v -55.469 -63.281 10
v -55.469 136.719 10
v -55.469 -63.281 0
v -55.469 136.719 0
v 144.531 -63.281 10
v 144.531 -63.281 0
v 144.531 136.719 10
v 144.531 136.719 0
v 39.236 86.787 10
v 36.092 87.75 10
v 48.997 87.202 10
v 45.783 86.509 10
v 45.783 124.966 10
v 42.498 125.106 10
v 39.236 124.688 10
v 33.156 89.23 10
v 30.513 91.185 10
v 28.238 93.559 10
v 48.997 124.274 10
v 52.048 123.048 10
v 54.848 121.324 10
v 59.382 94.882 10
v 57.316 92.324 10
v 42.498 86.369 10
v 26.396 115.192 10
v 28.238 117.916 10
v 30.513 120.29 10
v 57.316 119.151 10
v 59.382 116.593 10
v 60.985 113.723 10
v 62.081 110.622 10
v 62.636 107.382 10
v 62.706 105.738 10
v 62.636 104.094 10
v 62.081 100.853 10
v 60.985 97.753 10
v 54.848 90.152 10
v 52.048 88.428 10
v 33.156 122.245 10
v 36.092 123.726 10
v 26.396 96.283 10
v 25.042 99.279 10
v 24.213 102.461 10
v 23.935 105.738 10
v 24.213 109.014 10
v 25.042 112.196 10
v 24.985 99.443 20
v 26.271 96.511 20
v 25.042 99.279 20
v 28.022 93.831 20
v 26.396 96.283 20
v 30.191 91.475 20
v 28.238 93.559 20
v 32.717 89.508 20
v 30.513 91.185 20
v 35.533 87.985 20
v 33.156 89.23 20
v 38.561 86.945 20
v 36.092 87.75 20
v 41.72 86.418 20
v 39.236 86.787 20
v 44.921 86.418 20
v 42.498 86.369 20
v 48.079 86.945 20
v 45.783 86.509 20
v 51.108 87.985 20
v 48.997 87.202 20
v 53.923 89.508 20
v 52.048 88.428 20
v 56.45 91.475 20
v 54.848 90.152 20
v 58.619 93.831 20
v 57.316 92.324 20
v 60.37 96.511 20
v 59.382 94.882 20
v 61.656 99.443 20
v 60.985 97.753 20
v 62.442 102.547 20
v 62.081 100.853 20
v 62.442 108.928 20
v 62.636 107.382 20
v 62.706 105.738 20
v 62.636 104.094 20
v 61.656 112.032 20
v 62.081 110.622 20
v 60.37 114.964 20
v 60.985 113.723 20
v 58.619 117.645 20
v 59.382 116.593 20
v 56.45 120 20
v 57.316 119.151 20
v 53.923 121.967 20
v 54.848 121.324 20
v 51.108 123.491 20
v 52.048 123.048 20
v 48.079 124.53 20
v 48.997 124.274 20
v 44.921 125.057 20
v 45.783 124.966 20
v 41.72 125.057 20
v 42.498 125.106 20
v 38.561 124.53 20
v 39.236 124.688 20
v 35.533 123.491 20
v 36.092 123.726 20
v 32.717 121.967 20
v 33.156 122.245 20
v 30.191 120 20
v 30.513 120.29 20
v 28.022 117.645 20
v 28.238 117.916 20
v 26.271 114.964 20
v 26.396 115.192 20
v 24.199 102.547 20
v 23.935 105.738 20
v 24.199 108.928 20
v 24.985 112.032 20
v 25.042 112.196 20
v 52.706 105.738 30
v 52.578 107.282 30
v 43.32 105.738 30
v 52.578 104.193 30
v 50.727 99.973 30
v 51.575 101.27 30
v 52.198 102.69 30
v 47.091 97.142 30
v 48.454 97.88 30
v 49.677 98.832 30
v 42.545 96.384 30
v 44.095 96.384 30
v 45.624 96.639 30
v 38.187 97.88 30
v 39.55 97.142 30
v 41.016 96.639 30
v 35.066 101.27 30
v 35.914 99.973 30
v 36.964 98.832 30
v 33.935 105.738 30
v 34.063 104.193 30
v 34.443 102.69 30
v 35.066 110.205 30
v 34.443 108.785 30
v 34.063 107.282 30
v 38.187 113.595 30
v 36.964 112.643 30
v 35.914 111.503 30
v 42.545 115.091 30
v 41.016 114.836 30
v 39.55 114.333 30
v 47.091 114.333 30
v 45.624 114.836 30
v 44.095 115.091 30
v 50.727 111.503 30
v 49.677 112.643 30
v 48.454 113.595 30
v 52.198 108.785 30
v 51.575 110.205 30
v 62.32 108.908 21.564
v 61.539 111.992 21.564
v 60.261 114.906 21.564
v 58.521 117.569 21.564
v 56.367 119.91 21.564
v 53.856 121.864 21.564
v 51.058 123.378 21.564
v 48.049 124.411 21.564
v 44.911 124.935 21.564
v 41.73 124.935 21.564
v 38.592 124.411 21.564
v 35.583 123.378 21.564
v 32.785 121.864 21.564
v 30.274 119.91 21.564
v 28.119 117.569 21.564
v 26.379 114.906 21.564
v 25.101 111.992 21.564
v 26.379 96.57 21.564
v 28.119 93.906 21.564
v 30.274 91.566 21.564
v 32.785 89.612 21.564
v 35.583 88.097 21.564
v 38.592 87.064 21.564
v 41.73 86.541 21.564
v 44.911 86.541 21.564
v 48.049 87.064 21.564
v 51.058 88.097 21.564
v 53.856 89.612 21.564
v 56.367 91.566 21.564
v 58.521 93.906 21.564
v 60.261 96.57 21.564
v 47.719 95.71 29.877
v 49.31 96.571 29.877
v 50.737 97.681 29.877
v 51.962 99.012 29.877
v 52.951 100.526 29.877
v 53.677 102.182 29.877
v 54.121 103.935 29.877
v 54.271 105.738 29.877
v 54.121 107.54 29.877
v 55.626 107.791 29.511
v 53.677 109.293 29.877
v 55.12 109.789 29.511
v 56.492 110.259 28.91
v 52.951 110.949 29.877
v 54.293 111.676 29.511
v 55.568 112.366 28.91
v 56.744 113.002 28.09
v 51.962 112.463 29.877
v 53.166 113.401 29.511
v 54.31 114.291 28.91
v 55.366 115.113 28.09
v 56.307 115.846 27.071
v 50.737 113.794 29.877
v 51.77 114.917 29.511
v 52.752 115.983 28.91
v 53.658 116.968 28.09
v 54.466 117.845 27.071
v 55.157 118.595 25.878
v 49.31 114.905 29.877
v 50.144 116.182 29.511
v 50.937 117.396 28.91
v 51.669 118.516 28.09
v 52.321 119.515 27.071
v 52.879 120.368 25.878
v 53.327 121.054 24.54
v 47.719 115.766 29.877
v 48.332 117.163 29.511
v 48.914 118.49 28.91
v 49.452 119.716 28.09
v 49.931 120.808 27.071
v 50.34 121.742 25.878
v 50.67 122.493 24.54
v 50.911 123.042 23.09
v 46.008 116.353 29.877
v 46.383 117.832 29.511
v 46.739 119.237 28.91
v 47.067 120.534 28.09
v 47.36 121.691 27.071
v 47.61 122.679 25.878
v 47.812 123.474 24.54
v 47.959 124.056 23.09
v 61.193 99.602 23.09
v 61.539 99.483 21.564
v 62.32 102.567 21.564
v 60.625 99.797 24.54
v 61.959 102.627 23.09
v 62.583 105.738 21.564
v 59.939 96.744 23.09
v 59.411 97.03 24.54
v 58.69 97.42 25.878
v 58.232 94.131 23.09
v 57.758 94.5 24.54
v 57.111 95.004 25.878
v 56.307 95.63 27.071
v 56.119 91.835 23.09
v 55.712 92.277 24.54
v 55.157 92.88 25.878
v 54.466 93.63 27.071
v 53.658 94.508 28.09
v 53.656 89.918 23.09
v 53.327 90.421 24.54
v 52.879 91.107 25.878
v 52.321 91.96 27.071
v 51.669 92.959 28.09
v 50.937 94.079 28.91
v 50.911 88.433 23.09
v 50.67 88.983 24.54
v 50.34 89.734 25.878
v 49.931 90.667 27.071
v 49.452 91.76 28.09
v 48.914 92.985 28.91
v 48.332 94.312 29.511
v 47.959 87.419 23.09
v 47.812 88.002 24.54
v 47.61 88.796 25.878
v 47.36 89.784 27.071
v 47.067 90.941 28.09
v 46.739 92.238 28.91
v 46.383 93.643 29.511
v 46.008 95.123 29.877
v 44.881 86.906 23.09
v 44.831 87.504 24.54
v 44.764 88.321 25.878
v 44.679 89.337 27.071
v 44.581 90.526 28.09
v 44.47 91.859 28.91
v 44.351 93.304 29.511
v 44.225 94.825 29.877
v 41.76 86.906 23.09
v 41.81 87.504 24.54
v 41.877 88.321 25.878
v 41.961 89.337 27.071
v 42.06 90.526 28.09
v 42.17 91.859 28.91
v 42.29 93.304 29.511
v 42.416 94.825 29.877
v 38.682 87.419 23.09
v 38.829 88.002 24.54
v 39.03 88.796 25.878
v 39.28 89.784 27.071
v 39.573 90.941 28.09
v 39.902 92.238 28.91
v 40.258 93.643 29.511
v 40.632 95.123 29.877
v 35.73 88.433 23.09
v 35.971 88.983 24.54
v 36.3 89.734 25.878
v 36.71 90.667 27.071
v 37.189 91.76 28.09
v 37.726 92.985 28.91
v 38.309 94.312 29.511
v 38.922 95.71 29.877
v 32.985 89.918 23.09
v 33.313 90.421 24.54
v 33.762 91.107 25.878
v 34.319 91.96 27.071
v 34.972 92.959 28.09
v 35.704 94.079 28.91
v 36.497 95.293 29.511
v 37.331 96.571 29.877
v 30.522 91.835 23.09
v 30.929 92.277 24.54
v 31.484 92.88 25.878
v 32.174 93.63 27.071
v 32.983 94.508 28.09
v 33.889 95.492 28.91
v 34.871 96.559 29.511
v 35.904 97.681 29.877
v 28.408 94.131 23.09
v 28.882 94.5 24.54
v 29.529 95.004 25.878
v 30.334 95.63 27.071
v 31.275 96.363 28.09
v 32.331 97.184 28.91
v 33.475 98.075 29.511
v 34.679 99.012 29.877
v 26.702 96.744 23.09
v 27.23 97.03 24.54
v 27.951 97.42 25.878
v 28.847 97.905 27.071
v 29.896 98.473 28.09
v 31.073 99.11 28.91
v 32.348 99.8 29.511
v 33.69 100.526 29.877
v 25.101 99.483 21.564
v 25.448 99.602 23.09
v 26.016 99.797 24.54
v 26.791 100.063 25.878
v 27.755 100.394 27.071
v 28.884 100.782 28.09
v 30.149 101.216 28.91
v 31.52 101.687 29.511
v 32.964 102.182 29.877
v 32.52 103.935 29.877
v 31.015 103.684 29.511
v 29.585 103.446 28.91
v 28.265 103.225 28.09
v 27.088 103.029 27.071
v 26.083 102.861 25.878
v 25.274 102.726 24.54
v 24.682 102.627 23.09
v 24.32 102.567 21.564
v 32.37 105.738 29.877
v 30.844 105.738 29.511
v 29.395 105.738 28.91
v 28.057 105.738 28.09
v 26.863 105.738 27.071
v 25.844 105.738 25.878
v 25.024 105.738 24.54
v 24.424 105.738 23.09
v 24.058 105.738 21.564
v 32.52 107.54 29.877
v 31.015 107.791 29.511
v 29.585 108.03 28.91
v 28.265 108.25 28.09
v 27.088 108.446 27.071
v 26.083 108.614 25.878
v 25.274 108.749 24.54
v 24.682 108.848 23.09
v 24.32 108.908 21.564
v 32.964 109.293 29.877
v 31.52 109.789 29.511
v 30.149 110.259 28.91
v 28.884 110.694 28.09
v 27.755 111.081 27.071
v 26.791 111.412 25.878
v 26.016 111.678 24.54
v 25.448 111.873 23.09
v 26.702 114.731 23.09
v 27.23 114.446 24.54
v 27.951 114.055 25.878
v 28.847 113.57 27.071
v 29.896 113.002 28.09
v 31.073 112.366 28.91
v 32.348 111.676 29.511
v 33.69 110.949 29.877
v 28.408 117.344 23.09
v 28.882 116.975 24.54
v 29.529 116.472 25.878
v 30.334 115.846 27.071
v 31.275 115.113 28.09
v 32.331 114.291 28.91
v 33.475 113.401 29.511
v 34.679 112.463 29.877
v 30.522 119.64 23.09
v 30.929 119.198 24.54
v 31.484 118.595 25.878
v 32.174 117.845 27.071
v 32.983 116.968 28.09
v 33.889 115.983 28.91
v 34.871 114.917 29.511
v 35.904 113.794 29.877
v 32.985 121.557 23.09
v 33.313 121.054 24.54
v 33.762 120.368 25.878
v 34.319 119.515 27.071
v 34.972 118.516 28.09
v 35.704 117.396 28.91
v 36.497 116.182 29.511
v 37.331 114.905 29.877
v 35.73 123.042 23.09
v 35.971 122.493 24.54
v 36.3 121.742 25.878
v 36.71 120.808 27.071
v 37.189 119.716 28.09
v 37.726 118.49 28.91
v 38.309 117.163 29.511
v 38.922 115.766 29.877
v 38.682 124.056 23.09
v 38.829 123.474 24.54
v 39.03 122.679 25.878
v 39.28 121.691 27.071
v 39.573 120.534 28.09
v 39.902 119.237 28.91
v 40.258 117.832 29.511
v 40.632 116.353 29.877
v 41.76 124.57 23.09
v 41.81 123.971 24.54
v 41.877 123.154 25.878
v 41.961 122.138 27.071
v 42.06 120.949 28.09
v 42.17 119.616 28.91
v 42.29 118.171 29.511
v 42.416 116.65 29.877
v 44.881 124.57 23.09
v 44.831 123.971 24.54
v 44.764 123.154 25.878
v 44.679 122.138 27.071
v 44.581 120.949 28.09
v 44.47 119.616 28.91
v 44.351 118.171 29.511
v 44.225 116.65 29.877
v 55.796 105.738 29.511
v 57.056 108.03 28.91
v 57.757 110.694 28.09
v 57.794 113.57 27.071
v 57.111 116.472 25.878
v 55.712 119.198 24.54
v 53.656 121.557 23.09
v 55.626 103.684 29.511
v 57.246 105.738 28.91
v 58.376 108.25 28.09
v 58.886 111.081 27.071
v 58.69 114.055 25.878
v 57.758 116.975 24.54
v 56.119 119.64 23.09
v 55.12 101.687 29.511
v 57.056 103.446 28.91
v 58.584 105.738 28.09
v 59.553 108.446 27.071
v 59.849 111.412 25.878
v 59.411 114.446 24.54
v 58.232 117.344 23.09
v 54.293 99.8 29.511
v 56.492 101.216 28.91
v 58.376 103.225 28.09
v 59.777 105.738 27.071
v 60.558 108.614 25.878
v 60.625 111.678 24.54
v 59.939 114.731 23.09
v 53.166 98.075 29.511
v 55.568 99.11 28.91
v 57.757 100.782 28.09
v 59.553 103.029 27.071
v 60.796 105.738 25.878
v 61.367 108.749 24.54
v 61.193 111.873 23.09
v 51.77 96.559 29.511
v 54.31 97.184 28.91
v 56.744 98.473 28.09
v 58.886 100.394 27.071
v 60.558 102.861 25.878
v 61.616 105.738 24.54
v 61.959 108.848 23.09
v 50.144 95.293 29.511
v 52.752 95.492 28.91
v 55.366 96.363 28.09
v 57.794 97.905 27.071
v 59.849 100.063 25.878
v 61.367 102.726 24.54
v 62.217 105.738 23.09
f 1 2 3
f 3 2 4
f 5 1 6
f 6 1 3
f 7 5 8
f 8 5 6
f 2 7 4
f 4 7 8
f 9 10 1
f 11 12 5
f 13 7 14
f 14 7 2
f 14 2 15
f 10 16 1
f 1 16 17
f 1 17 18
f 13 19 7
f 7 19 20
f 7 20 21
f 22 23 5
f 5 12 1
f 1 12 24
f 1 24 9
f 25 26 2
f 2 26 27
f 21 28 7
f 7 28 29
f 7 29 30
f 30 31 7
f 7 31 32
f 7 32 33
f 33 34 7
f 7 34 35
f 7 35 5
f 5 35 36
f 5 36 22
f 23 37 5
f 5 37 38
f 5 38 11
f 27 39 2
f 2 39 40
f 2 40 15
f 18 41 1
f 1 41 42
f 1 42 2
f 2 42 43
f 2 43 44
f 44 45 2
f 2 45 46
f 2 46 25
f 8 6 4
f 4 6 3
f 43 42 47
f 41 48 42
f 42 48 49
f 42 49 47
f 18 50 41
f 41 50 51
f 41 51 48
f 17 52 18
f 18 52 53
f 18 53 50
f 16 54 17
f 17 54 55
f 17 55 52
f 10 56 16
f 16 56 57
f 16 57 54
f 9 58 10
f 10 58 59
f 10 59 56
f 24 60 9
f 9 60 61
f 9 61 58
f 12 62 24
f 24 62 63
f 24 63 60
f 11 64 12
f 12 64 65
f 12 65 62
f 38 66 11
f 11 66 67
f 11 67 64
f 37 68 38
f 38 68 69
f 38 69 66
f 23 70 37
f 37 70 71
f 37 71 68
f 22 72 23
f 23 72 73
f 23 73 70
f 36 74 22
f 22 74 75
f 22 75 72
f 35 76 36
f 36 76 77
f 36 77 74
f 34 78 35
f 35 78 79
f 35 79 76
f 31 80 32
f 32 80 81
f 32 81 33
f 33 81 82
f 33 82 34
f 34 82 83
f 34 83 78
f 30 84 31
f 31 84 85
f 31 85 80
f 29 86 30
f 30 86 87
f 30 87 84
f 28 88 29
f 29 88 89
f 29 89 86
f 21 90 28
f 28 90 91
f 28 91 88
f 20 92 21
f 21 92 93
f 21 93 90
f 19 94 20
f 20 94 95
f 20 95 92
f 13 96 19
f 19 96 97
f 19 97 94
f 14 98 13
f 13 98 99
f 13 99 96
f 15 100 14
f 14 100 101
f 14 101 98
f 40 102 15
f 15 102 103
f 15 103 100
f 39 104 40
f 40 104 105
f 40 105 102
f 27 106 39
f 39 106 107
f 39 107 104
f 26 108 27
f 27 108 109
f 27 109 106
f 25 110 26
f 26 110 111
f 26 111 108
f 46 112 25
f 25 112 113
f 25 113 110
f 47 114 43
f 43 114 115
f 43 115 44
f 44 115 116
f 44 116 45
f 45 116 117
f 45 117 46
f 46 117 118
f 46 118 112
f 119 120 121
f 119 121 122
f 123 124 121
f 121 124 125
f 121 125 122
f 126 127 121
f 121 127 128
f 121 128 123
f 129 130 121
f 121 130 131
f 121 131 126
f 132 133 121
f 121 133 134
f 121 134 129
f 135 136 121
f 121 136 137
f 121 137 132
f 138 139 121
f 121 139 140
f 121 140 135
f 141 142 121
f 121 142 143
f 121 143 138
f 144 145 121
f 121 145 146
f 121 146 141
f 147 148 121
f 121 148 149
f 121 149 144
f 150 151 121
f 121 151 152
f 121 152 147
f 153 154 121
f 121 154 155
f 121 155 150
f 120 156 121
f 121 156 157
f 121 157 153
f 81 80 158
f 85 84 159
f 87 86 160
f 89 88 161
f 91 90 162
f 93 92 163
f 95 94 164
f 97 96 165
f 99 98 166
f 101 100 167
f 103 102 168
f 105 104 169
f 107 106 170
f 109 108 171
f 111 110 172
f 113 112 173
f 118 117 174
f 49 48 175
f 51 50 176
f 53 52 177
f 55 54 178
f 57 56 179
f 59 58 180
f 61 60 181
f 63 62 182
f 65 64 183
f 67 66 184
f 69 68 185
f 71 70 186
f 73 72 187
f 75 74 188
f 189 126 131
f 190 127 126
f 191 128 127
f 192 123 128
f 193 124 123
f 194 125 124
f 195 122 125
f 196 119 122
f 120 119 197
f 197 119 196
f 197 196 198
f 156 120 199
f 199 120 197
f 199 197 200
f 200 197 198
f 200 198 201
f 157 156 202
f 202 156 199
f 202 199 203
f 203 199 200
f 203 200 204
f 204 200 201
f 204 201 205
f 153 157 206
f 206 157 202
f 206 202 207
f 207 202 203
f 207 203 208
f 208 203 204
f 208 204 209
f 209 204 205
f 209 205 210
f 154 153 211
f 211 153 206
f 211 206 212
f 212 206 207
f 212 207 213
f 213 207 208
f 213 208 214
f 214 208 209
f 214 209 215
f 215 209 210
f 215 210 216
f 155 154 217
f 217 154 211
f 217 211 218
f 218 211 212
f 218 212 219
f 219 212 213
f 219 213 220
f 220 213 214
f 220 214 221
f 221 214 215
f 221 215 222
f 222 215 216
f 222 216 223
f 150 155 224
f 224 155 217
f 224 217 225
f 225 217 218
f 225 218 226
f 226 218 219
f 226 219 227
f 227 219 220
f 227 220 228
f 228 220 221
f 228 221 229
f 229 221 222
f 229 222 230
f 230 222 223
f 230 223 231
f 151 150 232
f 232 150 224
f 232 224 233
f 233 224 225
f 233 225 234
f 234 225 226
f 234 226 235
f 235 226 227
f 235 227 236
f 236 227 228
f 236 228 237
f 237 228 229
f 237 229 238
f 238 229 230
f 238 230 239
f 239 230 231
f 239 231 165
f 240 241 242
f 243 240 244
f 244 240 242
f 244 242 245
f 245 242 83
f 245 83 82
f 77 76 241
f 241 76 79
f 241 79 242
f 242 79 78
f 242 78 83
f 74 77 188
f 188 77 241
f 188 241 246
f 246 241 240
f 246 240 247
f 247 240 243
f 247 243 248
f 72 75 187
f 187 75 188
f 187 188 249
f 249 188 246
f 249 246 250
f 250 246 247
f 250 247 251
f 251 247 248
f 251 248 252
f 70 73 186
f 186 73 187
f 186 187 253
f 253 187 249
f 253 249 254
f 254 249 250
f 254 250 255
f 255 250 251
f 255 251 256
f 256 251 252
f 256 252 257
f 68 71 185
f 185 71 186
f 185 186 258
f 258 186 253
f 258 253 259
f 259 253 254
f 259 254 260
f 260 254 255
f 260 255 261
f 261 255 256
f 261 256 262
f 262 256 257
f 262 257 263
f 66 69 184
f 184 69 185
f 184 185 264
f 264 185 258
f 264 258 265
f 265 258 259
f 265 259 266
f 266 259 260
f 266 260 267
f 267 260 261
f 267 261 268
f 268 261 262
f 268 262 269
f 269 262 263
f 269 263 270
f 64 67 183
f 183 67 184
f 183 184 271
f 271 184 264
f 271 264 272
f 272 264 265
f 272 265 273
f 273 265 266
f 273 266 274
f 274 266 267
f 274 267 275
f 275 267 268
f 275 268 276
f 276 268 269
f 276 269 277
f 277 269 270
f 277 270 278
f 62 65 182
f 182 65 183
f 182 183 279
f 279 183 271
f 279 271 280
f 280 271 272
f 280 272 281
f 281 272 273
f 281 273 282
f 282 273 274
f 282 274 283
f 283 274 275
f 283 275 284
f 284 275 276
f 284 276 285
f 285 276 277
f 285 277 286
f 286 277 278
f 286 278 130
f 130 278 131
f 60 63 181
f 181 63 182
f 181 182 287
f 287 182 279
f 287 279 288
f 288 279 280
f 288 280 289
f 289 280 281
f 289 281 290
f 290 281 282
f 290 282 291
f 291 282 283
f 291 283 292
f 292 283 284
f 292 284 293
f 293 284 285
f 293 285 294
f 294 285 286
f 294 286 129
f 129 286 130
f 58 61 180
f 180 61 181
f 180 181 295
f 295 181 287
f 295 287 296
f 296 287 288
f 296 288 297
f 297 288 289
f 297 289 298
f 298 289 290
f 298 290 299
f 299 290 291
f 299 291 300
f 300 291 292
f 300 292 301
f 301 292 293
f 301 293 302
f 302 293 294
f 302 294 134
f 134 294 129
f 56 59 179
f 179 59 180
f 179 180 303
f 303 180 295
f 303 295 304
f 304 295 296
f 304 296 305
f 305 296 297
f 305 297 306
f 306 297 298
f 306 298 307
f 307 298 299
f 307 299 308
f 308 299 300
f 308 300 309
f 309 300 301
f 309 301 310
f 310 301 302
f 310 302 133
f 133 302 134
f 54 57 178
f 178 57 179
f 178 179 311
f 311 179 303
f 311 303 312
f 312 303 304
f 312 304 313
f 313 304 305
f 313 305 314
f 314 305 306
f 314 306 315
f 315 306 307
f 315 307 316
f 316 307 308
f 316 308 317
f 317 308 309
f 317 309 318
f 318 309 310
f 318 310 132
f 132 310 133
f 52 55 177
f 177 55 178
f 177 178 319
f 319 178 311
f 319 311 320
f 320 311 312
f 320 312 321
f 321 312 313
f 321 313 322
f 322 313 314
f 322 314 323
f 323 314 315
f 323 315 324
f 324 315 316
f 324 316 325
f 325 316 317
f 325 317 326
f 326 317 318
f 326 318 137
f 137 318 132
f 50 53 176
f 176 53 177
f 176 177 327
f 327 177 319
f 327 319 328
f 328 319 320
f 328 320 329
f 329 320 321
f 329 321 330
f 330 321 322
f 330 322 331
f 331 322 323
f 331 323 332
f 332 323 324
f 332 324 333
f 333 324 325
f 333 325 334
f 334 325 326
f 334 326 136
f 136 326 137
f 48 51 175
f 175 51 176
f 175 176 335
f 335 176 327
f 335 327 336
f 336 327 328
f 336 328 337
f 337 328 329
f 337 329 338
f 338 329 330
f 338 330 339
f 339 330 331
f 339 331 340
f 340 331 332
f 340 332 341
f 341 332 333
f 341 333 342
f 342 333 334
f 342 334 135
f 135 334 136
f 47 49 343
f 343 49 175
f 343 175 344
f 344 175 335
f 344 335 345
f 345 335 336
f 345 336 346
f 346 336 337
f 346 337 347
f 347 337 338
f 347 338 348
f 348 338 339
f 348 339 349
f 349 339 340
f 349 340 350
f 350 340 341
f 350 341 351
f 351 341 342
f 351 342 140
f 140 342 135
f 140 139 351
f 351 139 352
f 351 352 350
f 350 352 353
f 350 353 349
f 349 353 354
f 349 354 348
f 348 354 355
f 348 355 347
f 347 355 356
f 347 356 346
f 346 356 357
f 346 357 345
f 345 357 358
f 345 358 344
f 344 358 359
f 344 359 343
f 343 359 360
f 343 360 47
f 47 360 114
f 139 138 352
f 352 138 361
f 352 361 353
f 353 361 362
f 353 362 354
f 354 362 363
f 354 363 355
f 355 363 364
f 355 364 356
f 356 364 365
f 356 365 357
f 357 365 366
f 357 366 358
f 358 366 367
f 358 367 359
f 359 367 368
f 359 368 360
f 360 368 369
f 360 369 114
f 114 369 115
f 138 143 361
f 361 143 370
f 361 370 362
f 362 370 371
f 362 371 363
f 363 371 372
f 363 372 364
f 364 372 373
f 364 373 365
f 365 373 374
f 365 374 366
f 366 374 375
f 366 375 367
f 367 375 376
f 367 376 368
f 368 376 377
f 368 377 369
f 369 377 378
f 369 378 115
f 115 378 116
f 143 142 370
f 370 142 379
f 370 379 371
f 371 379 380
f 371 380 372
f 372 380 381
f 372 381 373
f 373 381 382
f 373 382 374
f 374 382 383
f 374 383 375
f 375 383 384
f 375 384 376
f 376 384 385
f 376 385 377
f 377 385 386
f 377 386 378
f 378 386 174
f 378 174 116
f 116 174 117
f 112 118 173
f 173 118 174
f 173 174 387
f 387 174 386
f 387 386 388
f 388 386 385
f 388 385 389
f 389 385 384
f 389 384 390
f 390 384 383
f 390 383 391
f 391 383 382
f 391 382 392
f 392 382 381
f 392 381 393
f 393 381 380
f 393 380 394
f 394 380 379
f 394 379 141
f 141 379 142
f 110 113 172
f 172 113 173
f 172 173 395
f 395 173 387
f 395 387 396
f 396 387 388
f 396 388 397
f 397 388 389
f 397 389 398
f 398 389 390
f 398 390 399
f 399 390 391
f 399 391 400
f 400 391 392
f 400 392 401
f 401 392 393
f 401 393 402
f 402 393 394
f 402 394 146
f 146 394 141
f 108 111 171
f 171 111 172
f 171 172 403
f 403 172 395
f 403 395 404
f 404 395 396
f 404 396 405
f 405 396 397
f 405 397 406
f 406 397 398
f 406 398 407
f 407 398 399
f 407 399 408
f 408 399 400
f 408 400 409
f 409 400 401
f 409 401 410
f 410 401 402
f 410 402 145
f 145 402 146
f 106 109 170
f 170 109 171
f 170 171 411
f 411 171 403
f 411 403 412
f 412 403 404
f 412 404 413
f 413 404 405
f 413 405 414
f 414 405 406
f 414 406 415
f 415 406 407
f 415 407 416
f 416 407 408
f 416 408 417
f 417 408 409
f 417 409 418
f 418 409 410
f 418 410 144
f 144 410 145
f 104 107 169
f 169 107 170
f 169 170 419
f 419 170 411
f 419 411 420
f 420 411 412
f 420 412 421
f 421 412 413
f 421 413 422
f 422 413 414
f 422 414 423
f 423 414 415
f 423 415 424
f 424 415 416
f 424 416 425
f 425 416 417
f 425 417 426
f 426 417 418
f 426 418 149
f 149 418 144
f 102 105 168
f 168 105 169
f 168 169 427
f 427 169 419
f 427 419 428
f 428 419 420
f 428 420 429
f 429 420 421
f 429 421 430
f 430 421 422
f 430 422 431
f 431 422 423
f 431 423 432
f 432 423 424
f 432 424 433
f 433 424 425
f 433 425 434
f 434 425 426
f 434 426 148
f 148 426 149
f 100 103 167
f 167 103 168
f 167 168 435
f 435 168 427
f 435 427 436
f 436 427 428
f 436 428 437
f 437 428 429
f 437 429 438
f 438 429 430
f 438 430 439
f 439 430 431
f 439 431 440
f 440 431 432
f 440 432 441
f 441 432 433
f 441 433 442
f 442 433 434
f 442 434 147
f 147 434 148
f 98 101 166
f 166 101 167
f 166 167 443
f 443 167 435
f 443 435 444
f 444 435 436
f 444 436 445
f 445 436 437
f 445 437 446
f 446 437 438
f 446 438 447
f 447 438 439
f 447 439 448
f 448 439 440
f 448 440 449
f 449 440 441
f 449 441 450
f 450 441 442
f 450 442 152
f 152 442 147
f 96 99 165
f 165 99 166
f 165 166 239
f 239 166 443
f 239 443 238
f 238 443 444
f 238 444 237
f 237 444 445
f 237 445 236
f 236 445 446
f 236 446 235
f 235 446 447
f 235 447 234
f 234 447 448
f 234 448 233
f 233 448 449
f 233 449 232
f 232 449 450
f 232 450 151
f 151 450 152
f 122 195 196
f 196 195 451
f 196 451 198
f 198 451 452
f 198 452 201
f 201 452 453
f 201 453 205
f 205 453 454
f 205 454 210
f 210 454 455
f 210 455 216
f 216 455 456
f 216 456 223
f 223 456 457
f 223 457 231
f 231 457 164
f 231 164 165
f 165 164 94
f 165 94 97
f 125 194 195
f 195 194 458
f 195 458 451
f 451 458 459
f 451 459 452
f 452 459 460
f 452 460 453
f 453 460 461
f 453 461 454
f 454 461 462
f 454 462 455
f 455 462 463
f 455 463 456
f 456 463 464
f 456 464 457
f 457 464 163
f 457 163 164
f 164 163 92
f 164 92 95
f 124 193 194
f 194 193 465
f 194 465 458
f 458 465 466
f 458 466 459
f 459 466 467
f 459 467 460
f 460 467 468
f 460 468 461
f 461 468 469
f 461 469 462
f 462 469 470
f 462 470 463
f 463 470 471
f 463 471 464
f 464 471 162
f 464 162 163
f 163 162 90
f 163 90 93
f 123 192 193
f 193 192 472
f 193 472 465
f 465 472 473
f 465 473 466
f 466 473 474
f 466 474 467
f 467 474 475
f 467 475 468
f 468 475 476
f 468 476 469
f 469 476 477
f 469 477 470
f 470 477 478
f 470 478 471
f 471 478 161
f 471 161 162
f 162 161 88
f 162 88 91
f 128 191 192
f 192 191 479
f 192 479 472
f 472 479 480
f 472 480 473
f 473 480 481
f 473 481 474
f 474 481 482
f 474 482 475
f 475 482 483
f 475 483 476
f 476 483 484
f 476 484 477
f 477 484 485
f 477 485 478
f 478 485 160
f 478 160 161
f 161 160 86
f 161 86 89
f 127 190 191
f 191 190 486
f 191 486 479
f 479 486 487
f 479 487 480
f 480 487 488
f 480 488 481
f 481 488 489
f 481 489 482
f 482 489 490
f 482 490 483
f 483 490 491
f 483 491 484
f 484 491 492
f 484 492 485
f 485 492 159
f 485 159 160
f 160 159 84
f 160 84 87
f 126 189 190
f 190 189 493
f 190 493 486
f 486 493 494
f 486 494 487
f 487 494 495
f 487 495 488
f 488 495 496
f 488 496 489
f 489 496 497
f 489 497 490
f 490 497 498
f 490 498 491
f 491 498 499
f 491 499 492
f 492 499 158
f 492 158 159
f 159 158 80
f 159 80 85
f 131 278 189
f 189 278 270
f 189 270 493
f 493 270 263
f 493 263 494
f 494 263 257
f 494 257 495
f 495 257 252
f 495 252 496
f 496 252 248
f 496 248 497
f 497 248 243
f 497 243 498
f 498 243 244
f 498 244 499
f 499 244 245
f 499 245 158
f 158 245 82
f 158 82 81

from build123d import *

# Parameters (mm, degrees)
SKETCH1_W           = 200
SKETCH1_H           = 200
BOSS_EXTRUDE1_DEPTH = 10
SKETCH2_R           = 19.385831102
BOSS_EXTRUDE2_DEPTH = 20
FILLET1_R           = 10


with BuildPart() as part:
    # Sketch1 → Boss-Extrude1 (new body)
    with BuildSketch(Plane.XY):
        with Locations((44.53125, 36.71875)):
            Rectangle(SKETCH1_W, SKETCH1_H)
    extrude(amount=BOSS_EXTRUDE1_DEPTH)

    # Sketch2 → Boss-Extrude2 (add)
    with BuildSketch(Plane.XY.offset(10)):
        with Locations((43.320392106, 105.737649961)):
            Circle(SKETCH2_R)
    extrude(amount=BOSS_EXTRUDE2_DEPTH)

    # Fillet1
    fillet1_edges = [part.edges().sort_by_distance(p)[0] for p in [
        (23.934561004, 105.737649961, 30),
    ]]
    fillet(fillet1_edges, radius=FILLET1_R)


solid = part.part
